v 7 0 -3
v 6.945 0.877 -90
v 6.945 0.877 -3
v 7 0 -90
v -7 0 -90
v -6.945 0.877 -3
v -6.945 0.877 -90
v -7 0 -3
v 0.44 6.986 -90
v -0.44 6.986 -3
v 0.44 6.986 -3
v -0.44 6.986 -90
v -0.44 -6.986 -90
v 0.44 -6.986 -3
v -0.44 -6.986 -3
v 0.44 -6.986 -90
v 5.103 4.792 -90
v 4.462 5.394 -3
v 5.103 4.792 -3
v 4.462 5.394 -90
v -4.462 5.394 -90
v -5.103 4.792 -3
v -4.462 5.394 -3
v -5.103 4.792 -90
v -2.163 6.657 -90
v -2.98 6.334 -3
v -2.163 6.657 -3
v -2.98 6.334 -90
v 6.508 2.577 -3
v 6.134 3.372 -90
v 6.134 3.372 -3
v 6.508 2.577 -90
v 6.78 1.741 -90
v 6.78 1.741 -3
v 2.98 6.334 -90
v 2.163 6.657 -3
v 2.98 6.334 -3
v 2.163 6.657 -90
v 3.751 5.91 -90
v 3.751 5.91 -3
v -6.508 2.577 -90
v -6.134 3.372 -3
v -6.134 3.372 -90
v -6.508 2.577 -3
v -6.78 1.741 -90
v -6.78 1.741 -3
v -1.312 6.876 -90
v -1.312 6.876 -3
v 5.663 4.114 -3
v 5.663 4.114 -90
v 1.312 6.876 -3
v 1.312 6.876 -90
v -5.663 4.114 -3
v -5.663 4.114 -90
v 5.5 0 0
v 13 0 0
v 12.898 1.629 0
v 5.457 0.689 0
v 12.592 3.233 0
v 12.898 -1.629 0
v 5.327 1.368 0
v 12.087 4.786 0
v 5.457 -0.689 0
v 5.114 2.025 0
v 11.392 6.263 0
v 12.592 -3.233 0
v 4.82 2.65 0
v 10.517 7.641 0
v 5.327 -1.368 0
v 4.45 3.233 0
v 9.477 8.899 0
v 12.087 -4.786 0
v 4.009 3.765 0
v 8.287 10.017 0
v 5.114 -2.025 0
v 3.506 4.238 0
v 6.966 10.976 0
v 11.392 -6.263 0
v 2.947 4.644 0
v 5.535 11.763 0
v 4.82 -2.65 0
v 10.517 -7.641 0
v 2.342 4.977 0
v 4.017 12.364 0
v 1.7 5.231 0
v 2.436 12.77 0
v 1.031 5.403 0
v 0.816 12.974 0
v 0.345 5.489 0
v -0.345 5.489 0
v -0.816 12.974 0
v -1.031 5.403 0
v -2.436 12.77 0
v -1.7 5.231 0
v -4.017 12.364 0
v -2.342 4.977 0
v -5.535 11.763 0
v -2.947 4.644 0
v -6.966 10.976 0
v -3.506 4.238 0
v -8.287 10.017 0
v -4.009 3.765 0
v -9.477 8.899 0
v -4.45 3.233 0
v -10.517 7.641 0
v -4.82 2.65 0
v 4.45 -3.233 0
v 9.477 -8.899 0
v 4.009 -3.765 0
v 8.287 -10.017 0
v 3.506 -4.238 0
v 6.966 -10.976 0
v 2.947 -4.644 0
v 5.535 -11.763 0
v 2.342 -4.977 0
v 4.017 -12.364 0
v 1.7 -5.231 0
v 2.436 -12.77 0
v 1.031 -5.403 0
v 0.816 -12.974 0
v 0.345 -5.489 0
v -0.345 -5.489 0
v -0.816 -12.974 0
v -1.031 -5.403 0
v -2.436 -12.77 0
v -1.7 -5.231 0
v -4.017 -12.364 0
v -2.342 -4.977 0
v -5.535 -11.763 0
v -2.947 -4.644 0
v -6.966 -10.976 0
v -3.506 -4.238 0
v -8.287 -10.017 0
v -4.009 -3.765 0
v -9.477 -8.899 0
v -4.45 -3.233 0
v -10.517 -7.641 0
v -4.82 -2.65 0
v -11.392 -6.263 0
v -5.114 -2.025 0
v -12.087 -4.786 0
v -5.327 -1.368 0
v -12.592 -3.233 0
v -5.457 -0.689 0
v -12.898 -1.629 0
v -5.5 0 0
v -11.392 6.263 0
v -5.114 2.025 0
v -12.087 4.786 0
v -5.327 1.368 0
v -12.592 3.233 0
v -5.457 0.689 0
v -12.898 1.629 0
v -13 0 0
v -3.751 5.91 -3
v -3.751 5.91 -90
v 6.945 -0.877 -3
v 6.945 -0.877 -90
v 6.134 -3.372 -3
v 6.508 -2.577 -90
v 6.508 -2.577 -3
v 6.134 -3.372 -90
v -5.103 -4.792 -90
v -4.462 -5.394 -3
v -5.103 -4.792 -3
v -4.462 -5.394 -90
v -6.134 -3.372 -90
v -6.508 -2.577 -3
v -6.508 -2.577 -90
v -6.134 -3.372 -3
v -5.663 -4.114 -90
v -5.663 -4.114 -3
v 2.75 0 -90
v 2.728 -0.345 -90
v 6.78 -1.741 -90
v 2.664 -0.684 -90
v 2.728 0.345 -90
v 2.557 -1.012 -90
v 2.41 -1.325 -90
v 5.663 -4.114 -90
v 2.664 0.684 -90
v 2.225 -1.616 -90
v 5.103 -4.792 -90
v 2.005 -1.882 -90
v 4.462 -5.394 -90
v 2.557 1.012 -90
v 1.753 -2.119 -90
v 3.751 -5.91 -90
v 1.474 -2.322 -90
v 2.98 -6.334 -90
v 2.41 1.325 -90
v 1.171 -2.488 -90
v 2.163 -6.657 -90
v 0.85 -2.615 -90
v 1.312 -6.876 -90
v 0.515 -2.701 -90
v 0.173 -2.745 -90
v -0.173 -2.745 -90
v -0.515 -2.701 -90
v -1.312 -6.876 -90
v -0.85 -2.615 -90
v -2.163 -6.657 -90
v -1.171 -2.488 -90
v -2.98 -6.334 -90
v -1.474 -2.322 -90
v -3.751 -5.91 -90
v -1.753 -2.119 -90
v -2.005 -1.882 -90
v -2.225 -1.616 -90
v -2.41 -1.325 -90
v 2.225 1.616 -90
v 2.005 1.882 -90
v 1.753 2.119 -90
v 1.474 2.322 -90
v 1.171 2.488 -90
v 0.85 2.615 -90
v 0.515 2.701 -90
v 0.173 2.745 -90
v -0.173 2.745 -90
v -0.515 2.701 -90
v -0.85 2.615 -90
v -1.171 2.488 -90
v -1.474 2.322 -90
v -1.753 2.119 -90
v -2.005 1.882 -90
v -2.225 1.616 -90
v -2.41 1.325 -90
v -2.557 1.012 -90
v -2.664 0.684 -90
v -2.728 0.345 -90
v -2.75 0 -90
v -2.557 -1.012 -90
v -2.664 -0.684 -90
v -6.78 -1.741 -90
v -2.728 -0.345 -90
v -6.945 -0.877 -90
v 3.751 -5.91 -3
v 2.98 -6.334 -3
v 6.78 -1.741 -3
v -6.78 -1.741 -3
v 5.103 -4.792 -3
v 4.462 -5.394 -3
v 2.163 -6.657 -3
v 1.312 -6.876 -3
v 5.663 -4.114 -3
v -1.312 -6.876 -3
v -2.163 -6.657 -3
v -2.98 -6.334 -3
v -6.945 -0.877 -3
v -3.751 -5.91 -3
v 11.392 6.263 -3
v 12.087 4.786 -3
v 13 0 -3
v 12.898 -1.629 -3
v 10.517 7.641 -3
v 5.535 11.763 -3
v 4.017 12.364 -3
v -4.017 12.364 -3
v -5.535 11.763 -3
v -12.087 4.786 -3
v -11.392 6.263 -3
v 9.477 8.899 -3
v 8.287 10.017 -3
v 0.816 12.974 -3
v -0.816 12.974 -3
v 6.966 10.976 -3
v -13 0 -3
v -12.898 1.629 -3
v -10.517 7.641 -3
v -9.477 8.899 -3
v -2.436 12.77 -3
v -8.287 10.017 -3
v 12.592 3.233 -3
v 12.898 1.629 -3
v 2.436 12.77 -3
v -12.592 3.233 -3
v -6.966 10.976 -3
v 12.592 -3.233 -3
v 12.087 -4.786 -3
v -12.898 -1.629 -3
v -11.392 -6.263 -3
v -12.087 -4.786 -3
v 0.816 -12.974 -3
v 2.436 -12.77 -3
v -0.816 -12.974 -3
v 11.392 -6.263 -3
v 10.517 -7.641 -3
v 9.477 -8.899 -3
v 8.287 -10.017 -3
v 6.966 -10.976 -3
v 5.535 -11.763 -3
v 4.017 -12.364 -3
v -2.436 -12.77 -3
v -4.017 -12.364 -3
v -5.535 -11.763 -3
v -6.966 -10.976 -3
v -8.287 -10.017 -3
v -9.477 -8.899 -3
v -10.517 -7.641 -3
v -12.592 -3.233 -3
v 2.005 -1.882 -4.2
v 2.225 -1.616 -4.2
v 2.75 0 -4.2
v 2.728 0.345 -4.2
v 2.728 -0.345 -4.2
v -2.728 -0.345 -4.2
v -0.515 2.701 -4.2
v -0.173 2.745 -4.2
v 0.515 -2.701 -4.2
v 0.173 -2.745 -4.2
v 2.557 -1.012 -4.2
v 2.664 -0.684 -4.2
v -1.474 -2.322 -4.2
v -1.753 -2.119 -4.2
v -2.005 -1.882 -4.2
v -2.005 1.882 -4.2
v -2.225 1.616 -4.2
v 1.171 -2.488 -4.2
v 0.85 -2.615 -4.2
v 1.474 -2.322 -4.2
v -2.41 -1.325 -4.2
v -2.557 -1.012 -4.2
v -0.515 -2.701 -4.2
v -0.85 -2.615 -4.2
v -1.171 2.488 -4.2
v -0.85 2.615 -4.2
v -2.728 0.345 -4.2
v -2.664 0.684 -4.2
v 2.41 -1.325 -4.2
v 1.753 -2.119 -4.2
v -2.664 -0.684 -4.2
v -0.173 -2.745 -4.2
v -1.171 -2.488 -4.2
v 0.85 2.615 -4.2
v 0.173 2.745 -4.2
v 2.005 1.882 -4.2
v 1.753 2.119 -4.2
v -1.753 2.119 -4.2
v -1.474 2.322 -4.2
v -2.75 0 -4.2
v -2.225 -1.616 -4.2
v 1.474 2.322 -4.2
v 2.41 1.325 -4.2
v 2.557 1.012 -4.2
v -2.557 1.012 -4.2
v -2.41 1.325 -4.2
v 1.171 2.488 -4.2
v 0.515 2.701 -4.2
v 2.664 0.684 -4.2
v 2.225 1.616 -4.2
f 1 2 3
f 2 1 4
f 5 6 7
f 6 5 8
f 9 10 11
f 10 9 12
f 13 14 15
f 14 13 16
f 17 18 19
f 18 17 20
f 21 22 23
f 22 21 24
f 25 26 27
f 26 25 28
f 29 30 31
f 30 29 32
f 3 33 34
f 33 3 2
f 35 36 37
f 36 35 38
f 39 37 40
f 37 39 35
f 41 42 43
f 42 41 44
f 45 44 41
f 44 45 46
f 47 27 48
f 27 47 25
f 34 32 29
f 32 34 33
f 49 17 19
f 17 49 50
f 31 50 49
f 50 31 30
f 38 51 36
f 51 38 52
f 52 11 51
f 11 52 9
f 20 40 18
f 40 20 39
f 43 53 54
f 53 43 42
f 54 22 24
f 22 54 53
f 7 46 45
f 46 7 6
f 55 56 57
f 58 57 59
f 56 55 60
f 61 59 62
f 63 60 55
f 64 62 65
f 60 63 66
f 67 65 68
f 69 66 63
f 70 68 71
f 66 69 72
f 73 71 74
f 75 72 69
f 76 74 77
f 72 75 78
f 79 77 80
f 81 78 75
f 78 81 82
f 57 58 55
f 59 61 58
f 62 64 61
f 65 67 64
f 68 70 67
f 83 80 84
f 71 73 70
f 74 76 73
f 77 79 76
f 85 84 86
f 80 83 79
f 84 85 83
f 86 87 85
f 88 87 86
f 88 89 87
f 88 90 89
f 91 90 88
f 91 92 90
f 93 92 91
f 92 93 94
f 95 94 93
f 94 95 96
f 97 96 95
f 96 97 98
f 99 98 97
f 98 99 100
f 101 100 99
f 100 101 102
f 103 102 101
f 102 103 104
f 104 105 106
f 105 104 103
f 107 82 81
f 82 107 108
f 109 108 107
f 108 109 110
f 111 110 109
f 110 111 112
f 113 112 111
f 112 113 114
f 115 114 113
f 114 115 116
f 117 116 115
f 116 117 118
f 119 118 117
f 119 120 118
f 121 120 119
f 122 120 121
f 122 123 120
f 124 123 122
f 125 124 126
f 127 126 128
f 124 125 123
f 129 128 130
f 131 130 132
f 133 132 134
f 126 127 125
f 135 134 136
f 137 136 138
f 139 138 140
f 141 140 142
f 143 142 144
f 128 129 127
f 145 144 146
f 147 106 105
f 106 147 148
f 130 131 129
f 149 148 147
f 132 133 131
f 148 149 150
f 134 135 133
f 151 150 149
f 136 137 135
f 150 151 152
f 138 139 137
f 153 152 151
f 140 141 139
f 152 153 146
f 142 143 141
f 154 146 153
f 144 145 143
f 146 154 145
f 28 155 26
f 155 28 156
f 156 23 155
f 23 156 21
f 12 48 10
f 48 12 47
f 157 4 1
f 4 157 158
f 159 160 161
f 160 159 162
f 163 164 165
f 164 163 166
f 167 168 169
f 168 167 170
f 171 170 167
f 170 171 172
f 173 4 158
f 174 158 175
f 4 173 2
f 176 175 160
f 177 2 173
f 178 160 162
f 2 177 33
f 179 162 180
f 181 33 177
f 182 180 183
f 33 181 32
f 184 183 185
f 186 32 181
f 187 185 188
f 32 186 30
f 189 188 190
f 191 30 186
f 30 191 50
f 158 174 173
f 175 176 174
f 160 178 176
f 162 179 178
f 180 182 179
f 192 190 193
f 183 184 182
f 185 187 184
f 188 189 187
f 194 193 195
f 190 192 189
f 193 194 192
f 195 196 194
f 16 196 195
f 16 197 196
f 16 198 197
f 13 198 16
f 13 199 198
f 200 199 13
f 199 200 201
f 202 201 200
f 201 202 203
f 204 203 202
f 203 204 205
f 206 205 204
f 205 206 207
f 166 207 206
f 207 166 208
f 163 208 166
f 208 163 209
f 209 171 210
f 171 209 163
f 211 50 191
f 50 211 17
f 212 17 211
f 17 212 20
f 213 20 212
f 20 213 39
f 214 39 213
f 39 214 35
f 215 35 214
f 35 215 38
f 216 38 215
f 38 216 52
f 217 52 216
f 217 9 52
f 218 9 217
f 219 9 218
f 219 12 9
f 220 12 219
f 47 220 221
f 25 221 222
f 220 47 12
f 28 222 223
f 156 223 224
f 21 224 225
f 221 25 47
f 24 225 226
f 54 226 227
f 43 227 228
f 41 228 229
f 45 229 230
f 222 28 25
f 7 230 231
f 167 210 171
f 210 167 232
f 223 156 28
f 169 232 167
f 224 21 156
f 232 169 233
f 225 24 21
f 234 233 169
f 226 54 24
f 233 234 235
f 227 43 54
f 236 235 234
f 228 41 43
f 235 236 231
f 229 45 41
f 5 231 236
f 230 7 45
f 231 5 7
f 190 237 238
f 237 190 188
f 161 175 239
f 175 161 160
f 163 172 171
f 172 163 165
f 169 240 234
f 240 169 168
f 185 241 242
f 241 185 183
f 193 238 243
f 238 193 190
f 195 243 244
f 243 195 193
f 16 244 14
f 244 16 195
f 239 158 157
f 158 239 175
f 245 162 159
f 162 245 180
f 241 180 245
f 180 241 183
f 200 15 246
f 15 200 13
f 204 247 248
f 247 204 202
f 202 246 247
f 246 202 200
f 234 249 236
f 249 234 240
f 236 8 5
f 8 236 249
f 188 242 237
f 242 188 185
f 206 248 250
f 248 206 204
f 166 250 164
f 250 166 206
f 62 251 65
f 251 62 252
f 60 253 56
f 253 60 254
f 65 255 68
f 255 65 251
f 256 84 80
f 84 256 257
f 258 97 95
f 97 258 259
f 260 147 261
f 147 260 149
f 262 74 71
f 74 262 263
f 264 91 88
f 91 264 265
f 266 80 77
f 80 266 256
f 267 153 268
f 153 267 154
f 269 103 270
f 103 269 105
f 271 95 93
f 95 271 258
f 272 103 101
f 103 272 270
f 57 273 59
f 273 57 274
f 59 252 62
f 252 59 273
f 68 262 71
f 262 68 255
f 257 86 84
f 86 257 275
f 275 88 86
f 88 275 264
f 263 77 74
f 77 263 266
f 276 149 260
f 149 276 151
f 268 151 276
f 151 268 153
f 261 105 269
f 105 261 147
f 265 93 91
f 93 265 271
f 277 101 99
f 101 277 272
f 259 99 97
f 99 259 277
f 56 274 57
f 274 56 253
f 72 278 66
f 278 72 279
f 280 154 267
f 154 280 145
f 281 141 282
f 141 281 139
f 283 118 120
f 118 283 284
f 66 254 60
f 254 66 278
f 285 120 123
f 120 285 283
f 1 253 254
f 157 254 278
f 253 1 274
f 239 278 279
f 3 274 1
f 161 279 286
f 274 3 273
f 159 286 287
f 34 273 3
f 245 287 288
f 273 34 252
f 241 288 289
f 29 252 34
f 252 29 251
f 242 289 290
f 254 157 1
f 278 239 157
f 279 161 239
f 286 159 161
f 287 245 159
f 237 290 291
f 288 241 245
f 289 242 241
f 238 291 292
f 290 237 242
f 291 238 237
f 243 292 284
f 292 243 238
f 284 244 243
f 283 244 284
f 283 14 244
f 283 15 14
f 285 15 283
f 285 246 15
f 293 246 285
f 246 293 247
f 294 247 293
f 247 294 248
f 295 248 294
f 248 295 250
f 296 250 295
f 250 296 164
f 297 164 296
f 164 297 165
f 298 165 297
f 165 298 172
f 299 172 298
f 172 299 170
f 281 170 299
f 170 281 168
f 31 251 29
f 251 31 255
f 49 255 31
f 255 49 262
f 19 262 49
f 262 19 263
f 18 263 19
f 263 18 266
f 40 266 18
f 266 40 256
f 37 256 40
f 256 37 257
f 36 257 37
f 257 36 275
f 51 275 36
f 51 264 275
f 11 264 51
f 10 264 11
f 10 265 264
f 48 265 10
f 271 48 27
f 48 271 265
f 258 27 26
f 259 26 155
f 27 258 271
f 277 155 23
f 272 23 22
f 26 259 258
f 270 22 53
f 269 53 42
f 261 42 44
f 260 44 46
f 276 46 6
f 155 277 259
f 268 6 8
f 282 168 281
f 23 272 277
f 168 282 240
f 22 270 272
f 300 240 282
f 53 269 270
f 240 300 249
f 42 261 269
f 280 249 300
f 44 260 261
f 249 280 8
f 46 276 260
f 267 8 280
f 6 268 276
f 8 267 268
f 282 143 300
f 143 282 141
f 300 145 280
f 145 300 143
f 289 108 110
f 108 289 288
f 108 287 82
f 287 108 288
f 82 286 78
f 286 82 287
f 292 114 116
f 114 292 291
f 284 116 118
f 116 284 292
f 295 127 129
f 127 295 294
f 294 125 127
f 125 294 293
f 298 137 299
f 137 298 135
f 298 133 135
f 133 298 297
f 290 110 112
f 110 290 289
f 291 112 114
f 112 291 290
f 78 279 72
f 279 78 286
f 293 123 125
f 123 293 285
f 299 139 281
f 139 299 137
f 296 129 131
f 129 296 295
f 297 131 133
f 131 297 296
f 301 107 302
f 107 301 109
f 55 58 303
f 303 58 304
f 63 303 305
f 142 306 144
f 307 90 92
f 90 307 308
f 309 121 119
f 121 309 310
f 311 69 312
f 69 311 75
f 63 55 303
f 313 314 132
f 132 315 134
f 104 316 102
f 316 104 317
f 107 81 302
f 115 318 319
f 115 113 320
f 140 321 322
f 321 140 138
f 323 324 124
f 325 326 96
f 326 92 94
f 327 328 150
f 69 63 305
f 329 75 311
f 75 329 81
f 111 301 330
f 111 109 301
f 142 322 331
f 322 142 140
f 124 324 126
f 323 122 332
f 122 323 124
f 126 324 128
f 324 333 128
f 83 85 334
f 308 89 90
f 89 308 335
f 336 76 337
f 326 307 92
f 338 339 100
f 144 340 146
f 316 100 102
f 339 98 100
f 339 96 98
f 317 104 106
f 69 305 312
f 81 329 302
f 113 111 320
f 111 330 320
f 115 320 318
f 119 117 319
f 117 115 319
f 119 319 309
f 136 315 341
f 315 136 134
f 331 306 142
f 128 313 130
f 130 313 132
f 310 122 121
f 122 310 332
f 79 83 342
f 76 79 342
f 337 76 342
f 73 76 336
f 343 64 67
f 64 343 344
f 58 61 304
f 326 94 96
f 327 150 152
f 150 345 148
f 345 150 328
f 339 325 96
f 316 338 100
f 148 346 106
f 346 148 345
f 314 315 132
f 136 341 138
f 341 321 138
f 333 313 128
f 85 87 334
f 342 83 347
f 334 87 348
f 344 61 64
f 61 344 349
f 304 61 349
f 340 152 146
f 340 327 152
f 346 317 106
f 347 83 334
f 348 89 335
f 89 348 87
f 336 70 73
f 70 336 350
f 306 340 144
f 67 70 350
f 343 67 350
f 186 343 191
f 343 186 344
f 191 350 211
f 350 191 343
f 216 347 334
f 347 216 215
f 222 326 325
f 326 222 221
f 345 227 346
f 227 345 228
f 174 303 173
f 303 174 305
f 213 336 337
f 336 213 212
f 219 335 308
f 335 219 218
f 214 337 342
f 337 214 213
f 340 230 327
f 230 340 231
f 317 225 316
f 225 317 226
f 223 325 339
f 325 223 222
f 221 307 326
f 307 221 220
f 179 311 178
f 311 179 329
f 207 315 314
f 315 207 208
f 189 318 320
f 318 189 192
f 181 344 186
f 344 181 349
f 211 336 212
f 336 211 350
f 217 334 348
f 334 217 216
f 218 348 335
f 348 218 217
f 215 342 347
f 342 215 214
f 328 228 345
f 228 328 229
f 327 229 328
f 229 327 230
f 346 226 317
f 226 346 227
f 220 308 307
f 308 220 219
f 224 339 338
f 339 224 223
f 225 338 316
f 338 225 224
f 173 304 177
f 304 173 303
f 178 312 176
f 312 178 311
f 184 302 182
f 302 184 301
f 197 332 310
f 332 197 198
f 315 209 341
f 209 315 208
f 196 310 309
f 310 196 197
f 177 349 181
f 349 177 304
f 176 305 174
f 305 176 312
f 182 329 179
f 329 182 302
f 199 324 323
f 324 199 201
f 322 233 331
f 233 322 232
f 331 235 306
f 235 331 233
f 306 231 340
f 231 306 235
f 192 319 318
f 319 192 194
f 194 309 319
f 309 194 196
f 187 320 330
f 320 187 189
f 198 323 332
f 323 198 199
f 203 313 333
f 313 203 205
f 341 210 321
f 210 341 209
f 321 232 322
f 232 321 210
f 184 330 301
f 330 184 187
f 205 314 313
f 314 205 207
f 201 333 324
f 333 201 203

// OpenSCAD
$fn = 50;


difference() {
	union() {
		translate(v = [0, 0, -90.0000000000]) {
			cylinder(h = 90, r = 7.0000000000);
		}
		translate(v = [0, 0, -3.0000000000]) {
			cylinder(h = 3, r = 13.0000000000);
		}
	}
	union() {
		translate(v = [0, 0, 0]) {
			rotate(a = [0, 0, 0]) {
				difference() {
					union() {
						#translate(v = [0, 0, -90.0000000000]) {
							cylinder(h = 90, r = 2.2500000000);
						}
						#translate(v = [0, 0, -4.2000000000]) {
							cylinder(h = 4.2000000000, r = 7.0000000000, r1 = 2.7500000000, r2 = 5.5000000000);
						}
						#translate(v = [0, 0, -90.0000000000]) {
							cylinder(h = 90, r = 2.7500000000);
						}
						#translate(v = [0, 0, -90.0000000000]) {
							cylinder(h = 90, r = 2.2500000000);
						}
					}
					union();
				}
			}
		}
	}
}
